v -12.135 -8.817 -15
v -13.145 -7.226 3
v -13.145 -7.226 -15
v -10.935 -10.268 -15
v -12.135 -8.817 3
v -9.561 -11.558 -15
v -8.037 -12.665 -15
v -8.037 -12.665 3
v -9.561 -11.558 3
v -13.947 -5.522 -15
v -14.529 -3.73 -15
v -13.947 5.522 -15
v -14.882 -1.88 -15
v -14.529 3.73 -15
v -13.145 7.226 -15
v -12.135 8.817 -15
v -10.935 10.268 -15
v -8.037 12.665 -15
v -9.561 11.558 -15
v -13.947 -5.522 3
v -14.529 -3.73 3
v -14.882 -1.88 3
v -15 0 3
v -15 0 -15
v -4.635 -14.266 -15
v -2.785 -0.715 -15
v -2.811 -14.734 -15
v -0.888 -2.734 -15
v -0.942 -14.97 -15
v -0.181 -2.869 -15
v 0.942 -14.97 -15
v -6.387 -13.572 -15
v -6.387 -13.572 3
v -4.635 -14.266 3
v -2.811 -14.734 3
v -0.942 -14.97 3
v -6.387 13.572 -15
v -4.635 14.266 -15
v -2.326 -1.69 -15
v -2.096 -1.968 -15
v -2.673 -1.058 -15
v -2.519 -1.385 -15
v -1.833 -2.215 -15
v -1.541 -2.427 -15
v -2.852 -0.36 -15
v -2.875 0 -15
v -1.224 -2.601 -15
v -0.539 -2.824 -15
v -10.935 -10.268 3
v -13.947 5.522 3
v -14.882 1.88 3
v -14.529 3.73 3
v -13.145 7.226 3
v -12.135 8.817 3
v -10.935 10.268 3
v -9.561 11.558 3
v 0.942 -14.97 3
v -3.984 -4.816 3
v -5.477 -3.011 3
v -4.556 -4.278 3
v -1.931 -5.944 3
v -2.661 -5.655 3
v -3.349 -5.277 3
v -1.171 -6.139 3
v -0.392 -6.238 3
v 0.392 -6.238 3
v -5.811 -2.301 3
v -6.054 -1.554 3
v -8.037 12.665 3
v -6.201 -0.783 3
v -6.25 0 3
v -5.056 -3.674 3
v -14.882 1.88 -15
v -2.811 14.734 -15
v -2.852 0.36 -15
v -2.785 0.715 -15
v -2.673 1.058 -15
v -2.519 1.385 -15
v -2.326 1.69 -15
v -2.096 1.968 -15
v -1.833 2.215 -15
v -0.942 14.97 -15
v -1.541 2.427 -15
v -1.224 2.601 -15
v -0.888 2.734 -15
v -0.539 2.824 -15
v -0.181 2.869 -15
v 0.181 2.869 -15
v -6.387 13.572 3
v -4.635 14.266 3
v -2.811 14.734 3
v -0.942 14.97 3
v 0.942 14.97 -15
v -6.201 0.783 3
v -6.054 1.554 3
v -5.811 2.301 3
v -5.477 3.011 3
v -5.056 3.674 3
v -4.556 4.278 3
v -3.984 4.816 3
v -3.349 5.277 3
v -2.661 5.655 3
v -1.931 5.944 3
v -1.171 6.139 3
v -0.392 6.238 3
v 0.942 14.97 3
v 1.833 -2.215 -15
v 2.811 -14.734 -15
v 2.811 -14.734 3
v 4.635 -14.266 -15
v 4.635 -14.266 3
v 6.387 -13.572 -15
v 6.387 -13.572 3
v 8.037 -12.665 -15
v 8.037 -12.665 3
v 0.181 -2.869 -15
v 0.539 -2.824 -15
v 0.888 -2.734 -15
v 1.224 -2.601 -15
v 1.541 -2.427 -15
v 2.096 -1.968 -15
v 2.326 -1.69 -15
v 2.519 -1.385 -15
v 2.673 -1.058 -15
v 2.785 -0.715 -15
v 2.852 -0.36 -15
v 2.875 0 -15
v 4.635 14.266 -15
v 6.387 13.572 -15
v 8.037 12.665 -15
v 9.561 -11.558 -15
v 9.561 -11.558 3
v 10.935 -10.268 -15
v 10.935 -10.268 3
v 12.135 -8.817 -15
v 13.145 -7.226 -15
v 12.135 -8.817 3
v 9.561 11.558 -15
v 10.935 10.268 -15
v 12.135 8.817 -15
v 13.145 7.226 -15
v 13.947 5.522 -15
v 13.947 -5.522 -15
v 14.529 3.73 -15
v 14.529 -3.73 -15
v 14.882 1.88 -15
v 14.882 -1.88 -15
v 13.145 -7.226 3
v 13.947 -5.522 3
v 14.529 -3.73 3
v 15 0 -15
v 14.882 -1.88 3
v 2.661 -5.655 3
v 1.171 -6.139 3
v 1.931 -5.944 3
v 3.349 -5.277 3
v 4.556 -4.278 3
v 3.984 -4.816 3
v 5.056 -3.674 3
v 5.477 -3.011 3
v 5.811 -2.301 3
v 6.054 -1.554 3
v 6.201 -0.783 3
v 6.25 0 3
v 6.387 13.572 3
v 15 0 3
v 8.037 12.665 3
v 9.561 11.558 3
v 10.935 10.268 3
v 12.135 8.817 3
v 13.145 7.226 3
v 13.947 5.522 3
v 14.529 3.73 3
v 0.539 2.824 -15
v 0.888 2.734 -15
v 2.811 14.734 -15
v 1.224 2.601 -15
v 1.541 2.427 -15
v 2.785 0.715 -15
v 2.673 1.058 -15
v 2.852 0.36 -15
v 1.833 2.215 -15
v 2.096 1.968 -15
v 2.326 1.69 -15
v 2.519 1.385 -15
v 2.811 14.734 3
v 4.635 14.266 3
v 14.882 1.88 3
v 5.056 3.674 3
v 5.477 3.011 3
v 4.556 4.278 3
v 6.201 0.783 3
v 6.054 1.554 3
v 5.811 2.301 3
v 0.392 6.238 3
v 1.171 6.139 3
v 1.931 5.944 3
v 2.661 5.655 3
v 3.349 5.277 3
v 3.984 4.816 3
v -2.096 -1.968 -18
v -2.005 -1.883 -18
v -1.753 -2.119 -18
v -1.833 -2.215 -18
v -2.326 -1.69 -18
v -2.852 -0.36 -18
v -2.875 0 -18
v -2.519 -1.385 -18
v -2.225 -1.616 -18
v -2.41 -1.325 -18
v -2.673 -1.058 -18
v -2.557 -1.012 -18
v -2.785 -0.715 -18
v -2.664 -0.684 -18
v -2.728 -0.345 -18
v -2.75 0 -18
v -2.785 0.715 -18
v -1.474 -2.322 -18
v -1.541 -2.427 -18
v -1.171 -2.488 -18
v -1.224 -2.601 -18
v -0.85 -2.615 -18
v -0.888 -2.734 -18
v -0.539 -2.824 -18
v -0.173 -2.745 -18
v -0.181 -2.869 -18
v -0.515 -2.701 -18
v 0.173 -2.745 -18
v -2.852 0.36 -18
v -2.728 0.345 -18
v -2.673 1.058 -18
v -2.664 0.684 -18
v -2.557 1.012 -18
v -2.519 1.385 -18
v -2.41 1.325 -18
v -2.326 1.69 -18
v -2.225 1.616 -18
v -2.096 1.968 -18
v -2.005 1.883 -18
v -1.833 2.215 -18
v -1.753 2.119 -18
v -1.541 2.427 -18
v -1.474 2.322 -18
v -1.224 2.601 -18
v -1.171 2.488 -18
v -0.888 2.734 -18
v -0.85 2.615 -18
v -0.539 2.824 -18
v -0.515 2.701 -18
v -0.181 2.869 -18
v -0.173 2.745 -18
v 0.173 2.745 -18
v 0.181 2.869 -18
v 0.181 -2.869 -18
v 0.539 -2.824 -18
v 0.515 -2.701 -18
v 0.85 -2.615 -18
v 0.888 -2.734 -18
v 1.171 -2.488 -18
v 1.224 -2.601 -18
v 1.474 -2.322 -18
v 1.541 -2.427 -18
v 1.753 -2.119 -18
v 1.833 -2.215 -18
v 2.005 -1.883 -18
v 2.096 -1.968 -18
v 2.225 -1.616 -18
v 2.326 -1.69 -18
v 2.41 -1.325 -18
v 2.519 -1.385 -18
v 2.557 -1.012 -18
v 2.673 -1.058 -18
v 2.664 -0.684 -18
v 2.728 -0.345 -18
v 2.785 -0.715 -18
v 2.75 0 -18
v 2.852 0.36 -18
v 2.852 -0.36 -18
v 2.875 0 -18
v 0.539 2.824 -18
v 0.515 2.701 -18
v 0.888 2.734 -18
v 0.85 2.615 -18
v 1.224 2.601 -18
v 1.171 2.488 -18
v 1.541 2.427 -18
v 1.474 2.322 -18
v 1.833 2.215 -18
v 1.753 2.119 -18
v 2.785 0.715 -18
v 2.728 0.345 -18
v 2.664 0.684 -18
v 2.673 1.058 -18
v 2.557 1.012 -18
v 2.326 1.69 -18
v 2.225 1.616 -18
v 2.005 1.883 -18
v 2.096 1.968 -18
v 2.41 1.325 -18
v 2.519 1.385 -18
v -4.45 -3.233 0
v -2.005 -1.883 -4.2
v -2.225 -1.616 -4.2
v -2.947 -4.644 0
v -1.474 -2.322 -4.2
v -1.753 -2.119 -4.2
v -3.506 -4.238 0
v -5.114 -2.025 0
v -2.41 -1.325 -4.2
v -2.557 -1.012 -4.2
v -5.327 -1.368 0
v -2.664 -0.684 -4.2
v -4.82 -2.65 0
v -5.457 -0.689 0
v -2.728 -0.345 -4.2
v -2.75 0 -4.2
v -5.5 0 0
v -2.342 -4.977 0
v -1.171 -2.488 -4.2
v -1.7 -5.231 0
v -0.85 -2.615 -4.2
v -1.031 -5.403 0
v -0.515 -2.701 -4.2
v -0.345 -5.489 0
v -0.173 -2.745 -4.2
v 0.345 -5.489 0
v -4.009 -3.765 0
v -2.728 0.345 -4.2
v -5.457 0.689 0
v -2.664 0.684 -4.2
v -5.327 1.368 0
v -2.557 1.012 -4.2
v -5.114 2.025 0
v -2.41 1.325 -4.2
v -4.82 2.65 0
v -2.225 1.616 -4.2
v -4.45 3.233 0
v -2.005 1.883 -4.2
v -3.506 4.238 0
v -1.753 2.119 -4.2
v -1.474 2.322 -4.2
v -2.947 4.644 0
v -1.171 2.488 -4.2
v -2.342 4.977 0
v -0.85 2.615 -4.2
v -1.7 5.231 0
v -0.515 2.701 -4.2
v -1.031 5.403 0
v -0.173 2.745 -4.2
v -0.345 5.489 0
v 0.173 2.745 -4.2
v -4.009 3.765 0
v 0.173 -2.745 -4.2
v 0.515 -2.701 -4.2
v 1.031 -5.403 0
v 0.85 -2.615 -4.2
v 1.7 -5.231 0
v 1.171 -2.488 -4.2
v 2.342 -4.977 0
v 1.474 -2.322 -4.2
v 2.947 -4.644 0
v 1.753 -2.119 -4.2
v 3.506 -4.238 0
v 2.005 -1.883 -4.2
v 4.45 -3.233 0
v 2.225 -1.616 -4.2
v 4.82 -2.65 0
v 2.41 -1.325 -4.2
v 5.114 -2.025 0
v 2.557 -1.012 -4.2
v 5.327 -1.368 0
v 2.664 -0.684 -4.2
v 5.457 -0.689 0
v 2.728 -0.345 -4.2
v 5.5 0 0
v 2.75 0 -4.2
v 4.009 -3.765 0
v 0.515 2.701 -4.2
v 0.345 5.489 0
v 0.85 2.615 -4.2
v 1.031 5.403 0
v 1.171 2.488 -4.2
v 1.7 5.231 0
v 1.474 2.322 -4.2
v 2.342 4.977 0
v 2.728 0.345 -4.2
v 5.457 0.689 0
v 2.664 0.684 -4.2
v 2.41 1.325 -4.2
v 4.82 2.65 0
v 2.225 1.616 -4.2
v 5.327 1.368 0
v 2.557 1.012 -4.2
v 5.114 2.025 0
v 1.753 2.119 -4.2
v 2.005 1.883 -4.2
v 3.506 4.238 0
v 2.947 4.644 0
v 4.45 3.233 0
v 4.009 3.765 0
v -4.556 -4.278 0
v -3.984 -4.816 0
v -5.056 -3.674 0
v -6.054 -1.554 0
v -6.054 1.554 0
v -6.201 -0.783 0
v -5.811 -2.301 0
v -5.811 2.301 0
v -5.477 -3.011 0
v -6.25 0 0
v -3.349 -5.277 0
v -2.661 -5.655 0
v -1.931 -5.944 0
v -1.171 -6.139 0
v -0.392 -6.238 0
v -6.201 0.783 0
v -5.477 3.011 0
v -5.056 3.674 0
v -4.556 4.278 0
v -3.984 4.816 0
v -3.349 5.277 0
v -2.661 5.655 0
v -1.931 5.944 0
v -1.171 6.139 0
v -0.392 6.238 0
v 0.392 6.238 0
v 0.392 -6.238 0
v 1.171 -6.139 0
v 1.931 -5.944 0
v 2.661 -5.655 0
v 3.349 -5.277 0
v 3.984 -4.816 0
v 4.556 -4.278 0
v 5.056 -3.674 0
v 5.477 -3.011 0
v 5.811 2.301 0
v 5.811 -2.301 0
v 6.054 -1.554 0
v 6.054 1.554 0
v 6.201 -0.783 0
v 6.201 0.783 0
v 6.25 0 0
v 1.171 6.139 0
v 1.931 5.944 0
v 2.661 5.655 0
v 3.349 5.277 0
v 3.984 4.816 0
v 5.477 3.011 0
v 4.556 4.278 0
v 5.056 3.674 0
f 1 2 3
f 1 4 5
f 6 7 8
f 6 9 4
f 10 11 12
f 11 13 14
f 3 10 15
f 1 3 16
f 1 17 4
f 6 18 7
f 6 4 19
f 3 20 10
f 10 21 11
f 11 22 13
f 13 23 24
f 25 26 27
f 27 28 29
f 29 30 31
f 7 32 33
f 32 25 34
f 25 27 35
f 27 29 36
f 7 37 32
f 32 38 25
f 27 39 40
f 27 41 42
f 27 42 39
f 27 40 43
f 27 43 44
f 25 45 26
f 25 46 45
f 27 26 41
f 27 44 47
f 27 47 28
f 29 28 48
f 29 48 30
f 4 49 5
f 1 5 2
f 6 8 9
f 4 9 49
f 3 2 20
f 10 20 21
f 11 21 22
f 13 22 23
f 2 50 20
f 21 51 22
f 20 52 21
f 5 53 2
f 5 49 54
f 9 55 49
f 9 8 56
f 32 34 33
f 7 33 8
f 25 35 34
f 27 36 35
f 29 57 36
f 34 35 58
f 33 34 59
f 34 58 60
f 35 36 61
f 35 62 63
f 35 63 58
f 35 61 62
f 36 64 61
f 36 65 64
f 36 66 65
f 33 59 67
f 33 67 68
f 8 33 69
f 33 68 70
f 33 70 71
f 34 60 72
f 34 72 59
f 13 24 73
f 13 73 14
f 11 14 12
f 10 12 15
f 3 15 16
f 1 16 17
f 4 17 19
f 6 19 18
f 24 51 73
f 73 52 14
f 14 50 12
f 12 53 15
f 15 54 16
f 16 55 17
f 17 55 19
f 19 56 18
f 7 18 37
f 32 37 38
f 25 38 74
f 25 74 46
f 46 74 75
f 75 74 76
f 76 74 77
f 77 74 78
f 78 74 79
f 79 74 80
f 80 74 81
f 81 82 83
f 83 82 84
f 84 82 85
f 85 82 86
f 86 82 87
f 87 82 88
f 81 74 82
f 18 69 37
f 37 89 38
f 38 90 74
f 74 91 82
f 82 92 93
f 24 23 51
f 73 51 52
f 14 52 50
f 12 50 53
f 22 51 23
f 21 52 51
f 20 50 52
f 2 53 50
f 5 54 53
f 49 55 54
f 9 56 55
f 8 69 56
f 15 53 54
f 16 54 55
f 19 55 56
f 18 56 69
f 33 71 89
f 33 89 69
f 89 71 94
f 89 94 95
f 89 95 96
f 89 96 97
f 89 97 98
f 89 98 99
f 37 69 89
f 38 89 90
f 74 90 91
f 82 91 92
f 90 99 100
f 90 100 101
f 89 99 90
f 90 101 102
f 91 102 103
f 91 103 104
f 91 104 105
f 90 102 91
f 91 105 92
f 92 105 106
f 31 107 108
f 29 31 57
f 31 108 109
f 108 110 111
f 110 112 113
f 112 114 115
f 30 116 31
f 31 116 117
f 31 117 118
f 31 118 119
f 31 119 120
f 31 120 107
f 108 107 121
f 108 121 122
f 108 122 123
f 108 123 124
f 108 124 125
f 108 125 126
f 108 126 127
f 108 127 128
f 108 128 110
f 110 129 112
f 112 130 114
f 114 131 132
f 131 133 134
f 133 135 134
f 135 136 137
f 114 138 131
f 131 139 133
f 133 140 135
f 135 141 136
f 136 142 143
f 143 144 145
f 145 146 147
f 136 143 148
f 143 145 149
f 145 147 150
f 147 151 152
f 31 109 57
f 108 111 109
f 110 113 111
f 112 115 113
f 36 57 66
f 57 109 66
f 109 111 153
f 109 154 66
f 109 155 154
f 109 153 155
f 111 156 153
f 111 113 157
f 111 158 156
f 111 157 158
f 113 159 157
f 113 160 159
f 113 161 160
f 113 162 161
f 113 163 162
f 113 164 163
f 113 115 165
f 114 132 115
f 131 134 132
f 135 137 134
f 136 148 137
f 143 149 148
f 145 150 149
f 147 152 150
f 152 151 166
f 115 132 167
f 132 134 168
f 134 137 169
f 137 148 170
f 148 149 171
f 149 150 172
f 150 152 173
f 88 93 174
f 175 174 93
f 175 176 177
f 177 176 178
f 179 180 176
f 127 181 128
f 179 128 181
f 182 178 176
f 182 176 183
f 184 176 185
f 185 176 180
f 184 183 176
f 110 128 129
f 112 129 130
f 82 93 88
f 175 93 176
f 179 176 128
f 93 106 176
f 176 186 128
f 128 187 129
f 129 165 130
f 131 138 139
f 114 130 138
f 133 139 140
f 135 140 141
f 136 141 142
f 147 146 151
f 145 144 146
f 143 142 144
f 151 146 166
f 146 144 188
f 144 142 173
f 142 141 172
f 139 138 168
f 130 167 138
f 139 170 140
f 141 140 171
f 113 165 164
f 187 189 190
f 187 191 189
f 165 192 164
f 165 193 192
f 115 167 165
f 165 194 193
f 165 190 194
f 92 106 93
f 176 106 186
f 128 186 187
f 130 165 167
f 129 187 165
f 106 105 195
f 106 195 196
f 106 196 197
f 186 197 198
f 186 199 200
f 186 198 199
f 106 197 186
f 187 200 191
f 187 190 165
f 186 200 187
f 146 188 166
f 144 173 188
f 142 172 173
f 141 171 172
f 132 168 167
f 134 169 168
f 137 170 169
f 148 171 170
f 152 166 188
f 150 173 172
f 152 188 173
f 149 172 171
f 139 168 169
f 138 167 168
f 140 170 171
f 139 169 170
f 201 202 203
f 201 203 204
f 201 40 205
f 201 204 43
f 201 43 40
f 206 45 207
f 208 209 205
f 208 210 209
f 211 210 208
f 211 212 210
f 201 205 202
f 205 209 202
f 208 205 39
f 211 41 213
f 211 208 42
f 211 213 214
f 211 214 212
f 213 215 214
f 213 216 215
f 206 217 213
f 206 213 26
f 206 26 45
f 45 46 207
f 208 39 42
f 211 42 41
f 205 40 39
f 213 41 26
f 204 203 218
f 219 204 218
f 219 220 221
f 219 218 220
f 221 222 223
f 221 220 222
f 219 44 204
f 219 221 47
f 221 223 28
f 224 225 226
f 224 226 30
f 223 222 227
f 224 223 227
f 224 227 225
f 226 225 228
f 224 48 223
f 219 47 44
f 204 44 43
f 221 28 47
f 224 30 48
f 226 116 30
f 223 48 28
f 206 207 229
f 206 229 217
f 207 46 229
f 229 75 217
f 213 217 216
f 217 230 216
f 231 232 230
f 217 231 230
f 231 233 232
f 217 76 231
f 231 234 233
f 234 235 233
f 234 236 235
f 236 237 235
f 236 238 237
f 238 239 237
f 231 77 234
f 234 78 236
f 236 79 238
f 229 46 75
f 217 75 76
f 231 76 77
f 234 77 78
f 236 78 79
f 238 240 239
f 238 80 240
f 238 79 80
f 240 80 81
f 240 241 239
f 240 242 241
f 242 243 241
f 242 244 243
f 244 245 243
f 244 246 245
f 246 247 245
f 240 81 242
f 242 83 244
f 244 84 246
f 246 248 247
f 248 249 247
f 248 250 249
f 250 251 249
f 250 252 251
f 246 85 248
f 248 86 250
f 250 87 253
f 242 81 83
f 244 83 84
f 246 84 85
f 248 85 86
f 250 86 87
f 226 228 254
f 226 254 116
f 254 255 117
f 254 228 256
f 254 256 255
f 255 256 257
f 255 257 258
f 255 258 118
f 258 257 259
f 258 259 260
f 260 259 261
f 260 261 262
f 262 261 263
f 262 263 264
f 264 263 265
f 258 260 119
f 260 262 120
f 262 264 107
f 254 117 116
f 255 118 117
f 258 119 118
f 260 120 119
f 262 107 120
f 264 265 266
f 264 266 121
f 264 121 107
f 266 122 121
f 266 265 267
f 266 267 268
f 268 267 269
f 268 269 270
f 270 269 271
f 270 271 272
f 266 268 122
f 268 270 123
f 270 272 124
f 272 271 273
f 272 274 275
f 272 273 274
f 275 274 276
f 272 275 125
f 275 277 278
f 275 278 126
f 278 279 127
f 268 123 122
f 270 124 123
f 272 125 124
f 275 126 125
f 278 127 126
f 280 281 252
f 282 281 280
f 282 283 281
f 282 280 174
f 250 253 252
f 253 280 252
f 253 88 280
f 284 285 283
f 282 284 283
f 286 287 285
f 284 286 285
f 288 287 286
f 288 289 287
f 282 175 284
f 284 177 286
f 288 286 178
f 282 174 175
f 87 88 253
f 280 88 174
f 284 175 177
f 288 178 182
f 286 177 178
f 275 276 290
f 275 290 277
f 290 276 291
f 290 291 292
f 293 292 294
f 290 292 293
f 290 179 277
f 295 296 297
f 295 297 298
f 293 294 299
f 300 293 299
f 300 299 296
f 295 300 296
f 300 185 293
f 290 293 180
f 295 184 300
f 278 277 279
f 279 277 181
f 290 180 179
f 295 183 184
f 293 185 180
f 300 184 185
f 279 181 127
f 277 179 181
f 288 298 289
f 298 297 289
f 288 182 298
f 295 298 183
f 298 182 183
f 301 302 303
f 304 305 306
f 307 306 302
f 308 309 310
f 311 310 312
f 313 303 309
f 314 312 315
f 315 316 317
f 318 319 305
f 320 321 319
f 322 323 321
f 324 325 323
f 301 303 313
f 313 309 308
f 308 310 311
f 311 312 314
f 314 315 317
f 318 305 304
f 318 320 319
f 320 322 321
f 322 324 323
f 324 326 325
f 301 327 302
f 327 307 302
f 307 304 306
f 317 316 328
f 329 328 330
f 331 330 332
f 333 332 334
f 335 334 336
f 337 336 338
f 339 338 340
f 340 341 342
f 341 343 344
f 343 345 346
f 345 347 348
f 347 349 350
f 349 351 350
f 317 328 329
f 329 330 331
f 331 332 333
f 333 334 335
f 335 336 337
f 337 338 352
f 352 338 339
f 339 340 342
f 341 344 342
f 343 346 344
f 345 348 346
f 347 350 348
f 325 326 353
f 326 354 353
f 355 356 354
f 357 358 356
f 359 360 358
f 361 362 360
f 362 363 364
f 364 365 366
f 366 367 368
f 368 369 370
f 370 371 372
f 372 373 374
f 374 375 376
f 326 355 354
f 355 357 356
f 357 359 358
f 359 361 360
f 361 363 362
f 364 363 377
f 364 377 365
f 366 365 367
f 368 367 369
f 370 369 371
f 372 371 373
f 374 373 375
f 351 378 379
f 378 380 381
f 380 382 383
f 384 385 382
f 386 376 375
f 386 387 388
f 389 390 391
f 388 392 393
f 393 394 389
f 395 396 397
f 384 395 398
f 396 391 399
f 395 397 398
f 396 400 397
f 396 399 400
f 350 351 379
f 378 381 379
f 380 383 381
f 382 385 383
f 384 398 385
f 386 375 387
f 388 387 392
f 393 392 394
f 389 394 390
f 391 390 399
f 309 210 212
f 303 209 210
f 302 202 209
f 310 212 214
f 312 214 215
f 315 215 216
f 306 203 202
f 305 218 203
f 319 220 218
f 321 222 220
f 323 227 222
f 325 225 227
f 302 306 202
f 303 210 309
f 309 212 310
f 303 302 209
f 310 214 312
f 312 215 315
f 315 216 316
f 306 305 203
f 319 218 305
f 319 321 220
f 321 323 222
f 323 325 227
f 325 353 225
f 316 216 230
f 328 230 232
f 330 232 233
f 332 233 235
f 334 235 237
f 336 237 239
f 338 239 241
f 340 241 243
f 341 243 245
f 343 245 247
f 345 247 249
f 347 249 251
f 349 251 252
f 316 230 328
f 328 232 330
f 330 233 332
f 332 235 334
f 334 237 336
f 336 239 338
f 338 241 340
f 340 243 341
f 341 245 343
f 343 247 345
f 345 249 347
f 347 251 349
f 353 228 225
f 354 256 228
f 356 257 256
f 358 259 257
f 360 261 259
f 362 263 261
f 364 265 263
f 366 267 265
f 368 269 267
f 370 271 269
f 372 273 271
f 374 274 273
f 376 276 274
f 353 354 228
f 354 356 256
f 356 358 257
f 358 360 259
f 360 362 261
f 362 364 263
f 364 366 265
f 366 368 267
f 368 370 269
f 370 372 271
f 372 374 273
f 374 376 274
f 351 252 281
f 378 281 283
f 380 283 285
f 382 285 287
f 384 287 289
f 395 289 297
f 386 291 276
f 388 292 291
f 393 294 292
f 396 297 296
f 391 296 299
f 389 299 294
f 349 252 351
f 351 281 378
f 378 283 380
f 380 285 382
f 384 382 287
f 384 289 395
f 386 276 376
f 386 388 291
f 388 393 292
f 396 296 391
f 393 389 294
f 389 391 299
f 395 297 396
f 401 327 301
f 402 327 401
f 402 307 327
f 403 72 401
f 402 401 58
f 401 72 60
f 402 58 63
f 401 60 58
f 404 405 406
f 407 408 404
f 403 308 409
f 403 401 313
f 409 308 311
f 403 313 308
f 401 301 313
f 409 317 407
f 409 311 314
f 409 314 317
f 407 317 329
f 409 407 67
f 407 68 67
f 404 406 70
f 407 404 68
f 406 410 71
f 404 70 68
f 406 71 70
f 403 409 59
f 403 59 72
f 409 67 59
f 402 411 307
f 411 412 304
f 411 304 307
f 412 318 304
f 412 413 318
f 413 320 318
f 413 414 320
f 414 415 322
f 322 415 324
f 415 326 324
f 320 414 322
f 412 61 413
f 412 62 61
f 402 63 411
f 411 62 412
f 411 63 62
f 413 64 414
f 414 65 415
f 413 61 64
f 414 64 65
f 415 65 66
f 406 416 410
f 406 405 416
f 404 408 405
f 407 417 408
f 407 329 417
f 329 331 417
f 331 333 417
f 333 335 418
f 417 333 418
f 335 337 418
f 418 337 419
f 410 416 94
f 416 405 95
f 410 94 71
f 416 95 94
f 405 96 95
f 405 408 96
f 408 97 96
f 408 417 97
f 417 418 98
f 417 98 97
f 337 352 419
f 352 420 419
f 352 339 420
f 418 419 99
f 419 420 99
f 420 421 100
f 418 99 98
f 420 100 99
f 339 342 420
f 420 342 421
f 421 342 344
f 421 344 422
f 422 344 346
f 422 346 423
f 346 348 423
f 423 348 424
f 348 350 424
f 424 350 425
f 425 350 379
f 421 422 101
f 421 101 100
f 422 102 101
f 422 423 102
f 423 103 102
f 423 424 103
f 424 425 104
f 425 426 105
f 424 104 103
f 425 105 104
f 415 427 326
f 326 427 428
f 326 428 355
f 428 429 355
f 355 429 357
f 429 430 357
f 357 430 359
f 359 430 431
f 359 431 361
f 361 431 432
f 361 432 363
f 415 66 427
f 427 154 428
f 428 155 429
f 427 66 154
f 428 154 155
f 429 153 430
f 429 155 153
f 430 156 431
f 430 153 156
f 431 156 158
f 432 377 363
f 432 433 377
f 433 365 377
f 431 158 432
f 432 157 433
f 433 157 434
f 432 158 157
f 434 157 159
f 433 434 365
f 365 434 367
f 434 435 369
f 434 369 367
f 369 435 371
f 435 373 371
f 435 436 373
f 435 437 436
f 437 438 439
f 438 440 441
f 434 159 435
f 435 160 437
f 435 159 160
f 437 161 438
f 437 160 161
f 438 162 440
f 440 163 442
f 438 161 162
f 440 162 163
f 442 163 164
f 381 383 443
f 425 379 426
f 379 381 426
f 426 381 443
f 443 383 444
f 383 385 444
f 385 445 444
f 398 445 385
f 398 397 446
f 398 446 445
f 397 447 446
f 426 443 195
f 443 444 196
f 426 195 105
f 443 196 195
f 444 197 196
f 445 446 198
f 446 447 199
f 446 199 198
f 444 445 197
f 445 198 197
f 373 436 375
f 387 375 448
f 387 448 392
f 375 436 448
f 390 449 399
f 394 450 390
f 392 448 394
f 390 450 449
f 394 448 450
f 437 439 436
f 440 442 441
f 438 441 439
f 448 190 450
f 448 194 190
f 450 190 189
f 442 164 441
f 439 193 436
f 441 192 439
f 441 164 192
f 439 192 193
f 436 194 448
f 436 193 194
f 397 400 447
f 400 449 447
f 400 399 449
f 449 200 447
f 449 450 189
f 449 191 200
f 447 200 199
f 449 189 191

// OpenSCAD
$fn = 50;


difference() {
	union() {
		translate(v = [0, 0, -15.0000000000]) {
			cylinder(h = 18, r = 15.0000000000);
		}
		#translate(v = [0, 0, -18.0000000000]) {
			cylinder(h = 18, r = 2.8750000000);
		}
	}
	union() {
		translate(v = [0, 0, 0]) {
			rotate(a = [0, 0, 0]) {
				difference() {
					union() {
						translate(v = [0, 0, -18.0000000000]) {
							cylinder(h = 18, r = 2.2500000000);
						}
						translate(v = [0, 0, -4.2000000000]) {
							cylinder(h = 4.2000000000, r1 = 2.7500000000, r2 = 5.5000000000);
						}
						translate(v = [0, 0, -18.0000000000]) {
							cylinder(h = 18, r = 2.7500000000);
						}
						translate(v = [0, 0, -18.0000000000]) {
							cylinder(h = 18, r = 2.2500000000);
						}
					}
					union();
				}
			}
		}
		#cylinder(h = 3, r = 6.2500000000);
	}
}
